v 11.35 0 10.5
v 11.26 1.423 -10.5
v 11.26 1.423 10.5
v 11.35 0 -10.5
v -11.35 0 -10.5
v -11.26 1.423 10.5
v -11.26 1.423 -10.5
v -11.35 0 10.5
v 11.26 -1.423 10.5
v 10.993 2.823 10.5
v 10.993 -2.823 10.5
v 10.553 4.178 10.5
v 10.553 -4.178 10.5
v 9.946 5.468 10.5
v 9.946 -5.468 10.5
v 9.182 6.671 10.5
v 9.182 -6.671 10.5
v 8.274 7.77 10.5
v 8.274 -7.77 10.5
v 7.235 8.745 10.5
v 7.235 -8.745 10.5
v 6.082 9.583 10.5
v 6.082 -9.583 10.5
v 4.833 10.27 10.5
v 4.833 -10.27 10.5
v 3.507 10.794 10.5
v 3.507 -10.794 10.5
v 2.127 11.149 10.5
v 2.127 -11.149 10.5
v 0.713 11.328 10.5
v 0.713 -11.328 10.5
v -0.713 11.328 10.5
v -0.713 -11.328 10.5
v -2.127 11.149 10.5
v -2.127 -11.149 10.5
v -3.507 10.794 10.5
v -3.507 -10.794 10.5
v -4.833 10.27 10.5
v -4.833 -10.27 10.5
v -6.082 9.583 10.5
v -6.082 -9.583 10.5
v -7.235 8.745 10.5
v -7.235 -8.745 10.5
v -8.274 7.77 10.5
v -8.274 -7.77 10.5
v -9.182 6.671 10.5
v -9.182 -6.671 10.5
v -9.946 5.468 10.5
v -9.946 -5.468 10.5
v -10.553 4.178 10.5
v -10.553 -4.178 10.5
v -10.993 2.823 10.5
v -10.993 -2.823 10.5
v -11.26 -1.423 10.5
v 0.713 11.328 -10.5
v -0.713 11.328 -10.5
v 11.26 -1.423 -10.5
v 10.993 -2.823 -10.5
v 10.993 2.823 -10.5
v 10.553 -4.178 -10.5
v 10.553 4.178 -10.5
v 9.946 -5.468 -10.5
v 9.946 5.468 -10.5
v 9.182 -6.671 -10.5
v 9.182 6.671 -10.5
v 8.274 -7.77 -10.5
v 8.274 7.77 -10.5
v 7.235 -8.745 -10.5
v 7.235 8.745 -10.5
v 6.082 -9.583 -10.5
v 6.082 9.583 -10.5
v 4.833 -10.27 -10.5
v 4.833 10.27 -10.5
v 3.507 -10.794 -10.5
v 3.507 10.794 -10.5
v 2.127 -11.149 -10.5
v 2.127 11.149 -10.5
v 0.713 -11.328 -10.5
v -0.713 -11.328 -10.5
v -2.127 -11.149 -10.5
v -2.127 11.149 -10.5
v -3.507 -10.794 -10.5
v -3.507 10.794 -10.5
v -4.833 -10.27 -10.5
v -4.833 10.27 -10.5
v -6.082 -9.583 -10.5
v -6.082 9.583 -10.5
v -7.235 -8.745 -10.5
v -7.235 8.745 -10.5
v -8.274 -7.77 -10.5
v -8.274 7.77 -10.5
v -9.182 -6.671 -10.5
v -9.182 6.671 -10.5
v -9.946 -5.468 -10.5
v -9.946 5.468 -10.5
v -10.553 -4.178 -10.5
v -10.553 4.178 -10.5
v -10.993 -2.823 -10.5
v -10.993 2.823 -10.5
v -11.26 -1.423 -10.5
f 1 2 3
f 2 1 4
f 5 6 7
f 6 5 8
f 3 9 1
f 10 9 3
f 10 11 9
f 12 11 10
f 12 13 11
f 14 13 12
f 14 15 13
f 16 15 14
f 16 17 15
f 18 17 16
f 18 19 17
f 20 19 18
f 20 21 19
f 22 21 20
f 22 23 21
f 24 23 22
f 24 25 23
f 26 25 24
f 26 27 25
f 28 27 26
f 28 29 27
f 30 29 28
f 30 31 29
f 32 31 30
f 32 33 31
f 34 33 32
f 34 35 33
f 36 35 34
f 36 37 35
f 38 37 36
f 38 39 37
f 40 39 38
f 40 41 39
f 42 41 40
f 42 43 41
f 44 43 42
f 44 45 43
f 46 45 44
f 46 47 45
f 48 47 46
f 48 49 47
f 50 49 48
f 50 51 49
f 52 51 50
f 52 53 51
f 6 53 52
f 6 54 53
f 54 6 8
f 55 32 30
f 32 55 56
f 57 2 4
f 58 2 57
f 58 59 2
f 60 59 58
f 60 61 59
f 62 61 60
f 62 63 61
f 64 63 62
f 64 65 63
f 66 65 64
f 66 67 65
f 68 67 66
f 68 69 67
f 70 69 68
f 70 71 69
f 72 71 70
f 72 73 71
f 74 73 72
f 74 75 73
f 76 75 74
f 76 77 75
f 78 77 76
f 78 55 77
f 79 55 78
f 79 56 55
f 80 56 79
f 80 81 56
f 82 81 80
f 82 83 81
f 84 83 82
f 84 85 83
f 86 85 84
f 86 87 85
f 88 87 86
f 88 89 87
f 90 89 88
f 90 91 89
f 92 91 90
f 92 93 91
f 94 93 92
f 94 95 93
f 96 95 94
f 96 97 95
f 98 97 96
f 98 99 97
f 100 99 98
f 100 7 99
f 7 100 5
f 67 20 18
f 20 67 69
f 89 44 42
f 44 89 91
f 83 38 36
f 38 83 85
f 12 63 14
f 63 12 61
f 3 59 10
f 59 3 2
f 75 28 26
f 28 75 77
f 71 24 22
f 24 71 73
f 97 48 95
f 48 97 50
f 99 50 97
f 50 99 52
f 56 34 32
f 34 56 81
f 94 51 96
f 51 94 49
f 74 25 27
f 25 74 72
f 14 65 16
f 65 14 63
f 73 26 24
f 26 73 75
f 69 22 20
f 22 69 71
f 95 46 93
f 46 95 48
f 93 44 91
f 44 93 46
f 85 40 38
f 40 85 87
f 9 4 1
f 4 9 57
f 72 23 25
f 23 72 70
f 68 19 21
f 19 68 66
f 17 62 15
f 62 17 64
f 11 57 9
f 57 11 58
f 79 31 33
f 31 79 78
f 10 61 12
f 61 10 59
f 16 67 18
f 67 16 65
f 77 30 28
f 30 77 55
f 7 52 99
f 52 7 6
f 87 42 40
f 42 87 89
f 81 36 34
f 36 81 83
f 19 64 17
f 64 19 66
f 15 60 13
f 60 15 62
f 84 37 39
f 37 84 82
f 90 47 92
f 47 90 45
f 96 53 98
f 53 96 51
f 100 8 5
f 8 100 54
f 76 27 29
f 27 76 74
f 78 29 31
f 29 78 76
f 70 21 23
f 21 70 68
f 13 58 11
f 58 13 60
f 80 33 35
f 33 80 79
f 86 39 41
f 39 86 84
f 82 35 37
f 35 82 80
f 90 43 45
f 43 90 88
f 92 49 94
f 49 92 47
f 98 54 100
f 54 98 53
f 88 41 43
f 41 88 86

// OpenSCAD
$fn = 50;


difference() {
	union() {
		translate(v = [0, 0, -10.5000000000]) {
			cylinder(h = 21, r = 11.3500000000);
		}
	}
	union() {
		translate(v = [0, 0, -100.0000000000]) {
			cylinder(h = 200, r = 0);
		}
	}
}
